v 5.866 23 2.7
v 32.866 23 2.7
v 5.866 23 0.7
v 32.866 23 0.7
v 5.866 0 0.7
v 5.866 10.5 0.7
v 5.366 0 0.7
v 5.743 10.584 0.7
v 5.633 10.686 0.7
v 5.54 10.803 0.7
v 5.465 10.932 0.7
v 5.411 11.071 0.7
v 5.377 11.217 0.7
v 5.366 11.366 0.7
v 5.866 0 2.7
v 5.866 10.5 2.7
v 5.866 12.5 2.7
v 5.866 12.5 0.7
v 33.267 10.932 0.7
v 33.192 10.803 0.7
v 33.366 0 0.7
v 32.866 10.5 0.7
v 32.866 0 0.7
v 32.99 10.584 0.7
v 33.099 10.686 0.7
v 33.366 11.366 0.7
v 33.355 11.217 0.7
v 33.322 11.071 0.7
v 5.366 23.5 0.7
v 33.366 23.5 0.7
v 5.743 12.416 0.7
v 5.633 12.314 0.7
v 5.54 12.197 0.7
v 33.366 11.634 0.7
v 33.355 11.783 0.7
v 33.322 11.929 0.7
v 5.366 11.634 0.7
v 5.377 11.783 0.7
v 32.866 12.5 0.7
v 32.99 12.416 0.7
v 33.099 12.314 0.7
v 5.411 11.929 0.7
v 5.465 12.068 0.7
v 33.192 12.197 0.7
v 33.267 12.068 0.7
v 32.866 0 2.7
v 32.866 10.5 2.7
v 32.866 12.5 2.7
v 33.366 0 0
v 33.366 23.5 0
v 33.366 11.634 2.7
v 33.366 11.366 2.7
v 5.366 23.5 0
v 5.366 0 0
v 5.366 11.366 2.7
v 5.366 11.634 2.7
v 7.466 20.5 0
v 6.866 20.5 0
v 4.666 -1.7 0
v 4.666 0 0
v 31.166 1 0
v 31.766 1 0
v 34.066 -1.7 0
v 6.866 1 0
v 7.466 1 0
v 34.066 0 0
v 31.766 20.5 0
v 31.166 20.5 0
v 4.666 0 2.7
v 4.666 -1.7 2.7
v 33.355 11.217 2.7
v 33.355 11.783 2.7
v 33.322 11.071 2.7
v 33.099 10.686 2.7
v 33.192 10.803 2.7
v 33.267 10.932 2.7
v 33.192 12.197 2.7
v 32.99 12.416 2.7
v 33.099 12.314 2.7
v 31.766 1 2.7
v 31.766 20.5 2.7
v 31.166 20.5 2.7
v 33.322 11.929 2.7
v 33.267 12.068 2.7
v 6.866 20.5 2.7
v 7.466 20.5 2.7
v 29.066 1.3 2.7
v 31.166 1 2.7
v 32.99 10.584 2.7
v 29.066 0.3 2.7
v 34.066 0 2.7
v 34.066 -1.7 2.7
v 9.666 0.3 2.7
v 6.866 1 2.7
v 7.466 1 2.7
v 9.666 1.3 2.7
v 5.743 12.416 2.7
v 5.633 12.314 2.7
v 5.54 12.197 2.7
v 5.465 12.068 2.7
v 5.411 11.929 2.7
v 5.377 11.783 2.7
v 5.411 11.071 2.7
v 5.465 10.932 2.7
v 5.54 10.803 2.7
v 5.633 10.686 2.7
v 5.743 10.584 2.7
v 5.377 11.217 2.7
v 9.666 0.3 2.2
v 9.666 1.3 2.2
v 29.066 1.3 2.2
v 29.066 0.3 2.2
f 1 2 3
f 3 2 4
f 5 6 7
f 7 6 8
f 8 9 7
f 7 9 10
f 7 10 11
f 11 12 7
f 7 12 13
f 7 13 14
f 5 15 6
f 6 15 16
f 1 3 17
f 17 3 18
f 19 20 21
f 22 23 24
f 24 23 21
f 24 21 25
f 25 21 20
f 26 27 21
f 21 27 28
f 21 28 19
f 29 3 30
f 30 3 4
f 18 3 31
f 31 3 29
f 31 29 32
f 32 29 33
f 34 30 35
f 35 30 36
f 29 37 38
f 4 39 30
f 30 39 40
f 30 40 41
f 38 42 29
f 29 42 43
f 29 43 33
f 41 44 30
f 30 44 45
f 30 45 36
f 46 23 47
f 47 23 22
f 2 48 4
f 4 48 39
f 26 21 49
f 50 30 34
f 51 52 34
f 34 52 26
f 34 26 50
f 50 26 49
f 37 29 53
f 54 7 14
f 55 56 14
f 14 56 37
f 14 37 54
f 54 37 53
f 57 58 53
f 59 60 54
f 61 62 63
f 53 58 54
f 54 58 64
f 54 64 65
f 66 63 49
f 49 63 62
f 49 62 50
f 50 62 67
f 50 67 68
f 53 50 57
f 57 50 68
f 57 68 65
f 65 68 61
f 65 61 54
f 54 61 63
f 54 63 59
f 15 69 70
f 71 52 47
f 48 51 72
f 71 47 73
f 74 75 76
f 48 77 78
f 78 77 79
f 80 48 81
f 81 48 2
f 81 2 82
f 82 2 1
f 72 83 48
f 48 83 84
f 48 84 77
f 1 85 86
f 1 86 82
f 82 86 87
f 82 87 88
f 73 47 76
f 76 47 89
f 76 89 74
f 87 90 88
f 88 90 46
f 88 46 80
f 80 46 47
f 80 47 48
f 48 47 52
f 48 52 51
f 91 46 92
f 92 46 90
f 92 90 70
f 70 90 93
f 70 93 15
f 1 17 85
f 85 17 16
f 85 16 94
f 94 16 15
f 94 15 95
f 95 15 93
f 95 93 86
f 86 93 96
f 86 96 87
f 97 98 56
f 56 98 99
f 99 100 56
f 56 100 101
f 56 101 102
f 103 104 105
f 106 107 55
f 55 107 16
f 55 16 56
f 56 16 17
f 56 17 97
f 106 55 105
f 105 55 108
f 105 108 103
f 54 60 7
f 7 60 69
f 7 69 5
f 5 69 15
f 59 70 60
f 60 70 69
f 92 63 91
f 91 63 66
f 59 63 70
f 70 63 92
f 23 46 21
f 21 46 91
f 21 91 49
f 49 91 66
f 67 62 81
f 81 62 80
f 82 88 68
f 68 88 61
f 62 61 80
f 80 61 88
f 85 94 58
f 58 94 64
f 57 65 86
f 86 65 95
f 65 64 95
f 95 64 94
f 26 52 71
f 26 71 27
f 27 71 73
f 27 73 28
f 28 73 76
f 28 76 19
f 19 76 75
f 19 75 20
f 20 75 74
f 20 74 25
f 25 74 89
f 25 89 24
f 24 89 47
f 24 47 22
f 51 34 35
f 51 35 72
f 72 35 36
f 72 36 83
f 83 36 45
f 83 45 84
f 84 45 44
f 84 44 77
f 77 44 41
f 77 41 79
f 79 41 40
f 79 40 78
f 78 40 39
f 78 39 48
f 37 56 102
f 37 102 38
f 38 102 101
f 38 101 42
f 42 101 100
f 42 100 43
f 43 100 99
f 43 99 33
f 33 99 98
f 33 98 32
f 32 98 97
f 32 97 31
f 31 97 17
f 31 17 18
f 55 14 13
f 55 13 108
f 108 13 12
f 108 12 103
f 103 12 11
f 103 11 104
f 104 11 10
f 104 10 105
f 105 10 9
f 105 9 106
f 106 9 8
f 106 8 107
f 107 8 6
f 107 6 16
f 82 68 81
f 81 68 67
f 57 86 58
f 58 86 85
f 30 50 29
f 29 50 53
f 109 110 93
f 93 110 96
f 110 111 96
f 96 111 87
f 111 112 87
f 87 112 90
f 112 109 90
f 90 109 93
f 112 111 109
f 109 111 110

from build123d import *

# Parameters (mm, degrees)
SKIZZE1_W                       = 28
SKIZZE1_H                       = 23
AUFSATZ_LINEAR_AUSTRAGEN1_DEPTH = 0.7
SKIZZE3_W                       = 27
SKIZZE3_H                       = 22.5
AUFSATZ_LINEAR_AUSTRAGEN2_DEPTH = 2
AUFSATZ_LINEAR_AUSTRAGEN4_DEPTH = 1.7
SKIZZE6_W                       = 0.6
SKIZZE6_H                       = 22
SCHNITT_LINEAR_AUSTRAGEN1_DEPTH = 10
SKIZZE7_W                       = 2
SKIZZE7_H                       = 2
AUFSATZ_LINEAR_AUSTRAGEN5_DEPTH = 0.5
SKIZZE8_W                       = 2
SKIZZE8_H                       = 2
AUFSATZ_LINEAR_AUSTRAGEN6_DEPTH = 0.5
VERRUNDUNG1_R                   = 1
VERRUNDUNG2_R                   = 1
SKIZZE9_W                       = 27
SKIZZE9_H                       = 2.5
AUFSATZ_LINEAR_AUSTRAGEN7_DEPTH = 2.7
SKIZZE10_W                      = 28
SKIZZE10_H                      = 0.7
AUFSATZ_LINEAR_AUSTRAGEN8_DEPTH = 0.5
SKIZZE11_W                      = 19.4
SKIZZE11_H                      = 1
SCHNITT_LINEAR_AUSTRAGEN2_DEPTH = 0.5


with BuildPart() as part:
    # Skizze1 → Aufsatz-Linear austragen1 (new body)
    with BuildSketch(Plane.XY):
        with Locations((19.366132402, 11.5)):
            Rectangle(SKIZZE1_W, SKIZZE1_H)
    extrude(amount=AUFSATZ_LINEAR_AUSTRAGEN1_DEPTH)

    # Skizze3 → Aufsatz-Linear austragen2 (add)
    with BuildSketch(Plane.XY.offset(0.7)):
        with Locations((19.366132402, 11.25)):
            Rectangle(SKIZZE3_W, SKIZZE3_H)
    extrude(amount=AUFSATZ_LINEAR_AUSTRAGEN2_DEPTH)

    # Skizze5 → Aufsatz-Linear austragen4 (add)
    with BuildSketch(Plane.XZ):
        Polygon((5.866132402, 2.7), (32.866132402, 2.7), (34.066132402, 2.7), (34.066132402, 0), (33.366132402, 0), (5.366132402, 0), (4.666132402, 0), (4.666132402, 2.7), align=None)
    extrude(amount=AUFSATZ_LINEAR_AUSTRAGEN4_DEPTH)

    # Skizze6 → Schnitt-Linear austragen1 (cut)
    with BuildSketch(Plane(origin=(0, 0, 0), x_dir=(-1, 0, 0), z_dir=(0, 0, -1))):
        with Locations((-31.466132402, 12)):
            Rectangle(SKIZZE6_W, SKIZZE6_H)
        with Locations((-7.166132402, 12)):
            Rectangle(SKIZZE6_W, SKIZZE6_H)
    extrude(amount=-SCHNITT_LINEAR_AUSTRAGEN1_DEPTH, mode=Mode.SUBTRACT)

    # Skizze7 → Aufsatz-Linear austragen5 (add)
    with BuildSketch(Plane(origin=(32.866132402, 0, 0), x_dir=(0, 0, -1), z_dir=(1, 0, 0))):
        with Locations((-1.7, 11.5)):
            Rectangle(SKIZZE7_W, SKIZZE7_H)
    extrude(amount=AUFSATZ_LINEAR_AUSTRAGEN5_DEPTH)

    # Skizze8 → Aufsatz-Linear austragen6 (add)
    with BuildSketch(Plane.ZY.offset(-5.866132402)):
        with Locations((1.7, 11.5)):
            Rectangle(SKIZZE8_W, SKIZZE8_H)
    extrude(amount=AUFSATZ_LINEAR_AUSTRAGEN6_DEPTH)

    # Verrundung1
    # the kernel refuses this fillet: 1 mm, written as the material it takes off along each edge
    with BuildSketch(Plane(origin=(33.366132402, 10.5, 0.7), x_dir=(-1, 0, 0), z_dir=(0, 0, 1))) as verrundung1_piece_1:
        with BuildLine():
            CenterArc((1, -0.866025404), VERRUNDUNG1_R, 120, 60)
            Line((0, -0.866025404), (0, 0))
            Line((0, 0), (0.5, 0))
        make_face()
    extrude(amount=4.165063509, mode=Mode.SUBTRACT)
    with BuildSketch(Plane(origin=(33.366132402, 12.5, 4.865063509), x_dir=(0, -1, 0), z_dir=(0, 0, -1))) as verrundung1_piece_2:
        with BuildLine():
            CenterArc((0.866025404, 1), VERRUNDUNG1_R, 210, 60)
            Line((0, 0.5), (0, 0))
            Line((0, 0), (0.866025404, 0))
        make_face()
    extrude(amount=4.165063509, mode=Mode.SUBTRACT)

    # Verrundung2
    # the kernel refuses this fillet: 1 mm, written as the material it takes off along each edge
    with BuildSketch(Plane(origin=(5.366132402, 12.5, 0.7), x_dir=(1, 0, 0), z_dir=(0, 0, 1))) as verrundung2_piece_1:
        with BuildLine():
            CenterArc((1, -0.866025404), VERRUNDUNG2_R, 120, 60)
            Line((0, -0.866025404), (0, 0))
            Line((0, 0), (0.5, 0))
        make_face()
    extrude(amount=4.165063509, mode=Mode.SUBTRACT)
    with BuildSketch(Plane(origin=(5.366132402, 10.5, 4.865063509), x_dir=(0, 1, 0), z_dir=(0, 0, -1))) as verrundung2_piece_2:
        with BuildLine():
            CenterArc((0.866025404, 1), VERRUNDUNG2_R, 210, 60)
            Line((0, 0.5), (0, 0))
            Line((0, 0), (0.866025404, 0))
        make_face()
    extrude(amount=4.165063509, mode=Mode.SUBTRACT)

    # Skizze9 → Aufsatz-Linear austragen7 (add)
    with BuildSketch(Plane.XY.offset(2.7)):
        with Locations((19.366132402, 21.75)):
            Rectangle(SKIZZE9_W, SKIZZE9_H)
    extrude(amount=-AUFSATZ_LINEAR_AUSTRAGEN7_DEPTH)

    # Skizze10 → Aufsatz-Linear austragen8 (add)
    with BuildSketch(Plane(origin=(0, 23, 0), x_dir=(1, 0, 0), z_dir=(0, 1, 0))):
        with Locations((19.366132402, -0.35)):
            Rectangle(SKIZZE10_W, SKIZZE10_H)
    extrude(amount=AUFSATZ_LINEAR_AUSTRAGEN8_DEPTH)

    # Skizze11 → Schnitt-Linear austragen2 (cut)
    with BuildSketch(Plane.XY.offset(2.7)):
        with Locations((19.366132402, 0.8)):
            Rectangle(SKIZZE11_W, SKIZZE11_H)
    extrude(amount=-SCHNITT_LINEAR_AUSTRAGEN2_DEPTH, mode=Mode.SUBTRACT)


solid = part.part
